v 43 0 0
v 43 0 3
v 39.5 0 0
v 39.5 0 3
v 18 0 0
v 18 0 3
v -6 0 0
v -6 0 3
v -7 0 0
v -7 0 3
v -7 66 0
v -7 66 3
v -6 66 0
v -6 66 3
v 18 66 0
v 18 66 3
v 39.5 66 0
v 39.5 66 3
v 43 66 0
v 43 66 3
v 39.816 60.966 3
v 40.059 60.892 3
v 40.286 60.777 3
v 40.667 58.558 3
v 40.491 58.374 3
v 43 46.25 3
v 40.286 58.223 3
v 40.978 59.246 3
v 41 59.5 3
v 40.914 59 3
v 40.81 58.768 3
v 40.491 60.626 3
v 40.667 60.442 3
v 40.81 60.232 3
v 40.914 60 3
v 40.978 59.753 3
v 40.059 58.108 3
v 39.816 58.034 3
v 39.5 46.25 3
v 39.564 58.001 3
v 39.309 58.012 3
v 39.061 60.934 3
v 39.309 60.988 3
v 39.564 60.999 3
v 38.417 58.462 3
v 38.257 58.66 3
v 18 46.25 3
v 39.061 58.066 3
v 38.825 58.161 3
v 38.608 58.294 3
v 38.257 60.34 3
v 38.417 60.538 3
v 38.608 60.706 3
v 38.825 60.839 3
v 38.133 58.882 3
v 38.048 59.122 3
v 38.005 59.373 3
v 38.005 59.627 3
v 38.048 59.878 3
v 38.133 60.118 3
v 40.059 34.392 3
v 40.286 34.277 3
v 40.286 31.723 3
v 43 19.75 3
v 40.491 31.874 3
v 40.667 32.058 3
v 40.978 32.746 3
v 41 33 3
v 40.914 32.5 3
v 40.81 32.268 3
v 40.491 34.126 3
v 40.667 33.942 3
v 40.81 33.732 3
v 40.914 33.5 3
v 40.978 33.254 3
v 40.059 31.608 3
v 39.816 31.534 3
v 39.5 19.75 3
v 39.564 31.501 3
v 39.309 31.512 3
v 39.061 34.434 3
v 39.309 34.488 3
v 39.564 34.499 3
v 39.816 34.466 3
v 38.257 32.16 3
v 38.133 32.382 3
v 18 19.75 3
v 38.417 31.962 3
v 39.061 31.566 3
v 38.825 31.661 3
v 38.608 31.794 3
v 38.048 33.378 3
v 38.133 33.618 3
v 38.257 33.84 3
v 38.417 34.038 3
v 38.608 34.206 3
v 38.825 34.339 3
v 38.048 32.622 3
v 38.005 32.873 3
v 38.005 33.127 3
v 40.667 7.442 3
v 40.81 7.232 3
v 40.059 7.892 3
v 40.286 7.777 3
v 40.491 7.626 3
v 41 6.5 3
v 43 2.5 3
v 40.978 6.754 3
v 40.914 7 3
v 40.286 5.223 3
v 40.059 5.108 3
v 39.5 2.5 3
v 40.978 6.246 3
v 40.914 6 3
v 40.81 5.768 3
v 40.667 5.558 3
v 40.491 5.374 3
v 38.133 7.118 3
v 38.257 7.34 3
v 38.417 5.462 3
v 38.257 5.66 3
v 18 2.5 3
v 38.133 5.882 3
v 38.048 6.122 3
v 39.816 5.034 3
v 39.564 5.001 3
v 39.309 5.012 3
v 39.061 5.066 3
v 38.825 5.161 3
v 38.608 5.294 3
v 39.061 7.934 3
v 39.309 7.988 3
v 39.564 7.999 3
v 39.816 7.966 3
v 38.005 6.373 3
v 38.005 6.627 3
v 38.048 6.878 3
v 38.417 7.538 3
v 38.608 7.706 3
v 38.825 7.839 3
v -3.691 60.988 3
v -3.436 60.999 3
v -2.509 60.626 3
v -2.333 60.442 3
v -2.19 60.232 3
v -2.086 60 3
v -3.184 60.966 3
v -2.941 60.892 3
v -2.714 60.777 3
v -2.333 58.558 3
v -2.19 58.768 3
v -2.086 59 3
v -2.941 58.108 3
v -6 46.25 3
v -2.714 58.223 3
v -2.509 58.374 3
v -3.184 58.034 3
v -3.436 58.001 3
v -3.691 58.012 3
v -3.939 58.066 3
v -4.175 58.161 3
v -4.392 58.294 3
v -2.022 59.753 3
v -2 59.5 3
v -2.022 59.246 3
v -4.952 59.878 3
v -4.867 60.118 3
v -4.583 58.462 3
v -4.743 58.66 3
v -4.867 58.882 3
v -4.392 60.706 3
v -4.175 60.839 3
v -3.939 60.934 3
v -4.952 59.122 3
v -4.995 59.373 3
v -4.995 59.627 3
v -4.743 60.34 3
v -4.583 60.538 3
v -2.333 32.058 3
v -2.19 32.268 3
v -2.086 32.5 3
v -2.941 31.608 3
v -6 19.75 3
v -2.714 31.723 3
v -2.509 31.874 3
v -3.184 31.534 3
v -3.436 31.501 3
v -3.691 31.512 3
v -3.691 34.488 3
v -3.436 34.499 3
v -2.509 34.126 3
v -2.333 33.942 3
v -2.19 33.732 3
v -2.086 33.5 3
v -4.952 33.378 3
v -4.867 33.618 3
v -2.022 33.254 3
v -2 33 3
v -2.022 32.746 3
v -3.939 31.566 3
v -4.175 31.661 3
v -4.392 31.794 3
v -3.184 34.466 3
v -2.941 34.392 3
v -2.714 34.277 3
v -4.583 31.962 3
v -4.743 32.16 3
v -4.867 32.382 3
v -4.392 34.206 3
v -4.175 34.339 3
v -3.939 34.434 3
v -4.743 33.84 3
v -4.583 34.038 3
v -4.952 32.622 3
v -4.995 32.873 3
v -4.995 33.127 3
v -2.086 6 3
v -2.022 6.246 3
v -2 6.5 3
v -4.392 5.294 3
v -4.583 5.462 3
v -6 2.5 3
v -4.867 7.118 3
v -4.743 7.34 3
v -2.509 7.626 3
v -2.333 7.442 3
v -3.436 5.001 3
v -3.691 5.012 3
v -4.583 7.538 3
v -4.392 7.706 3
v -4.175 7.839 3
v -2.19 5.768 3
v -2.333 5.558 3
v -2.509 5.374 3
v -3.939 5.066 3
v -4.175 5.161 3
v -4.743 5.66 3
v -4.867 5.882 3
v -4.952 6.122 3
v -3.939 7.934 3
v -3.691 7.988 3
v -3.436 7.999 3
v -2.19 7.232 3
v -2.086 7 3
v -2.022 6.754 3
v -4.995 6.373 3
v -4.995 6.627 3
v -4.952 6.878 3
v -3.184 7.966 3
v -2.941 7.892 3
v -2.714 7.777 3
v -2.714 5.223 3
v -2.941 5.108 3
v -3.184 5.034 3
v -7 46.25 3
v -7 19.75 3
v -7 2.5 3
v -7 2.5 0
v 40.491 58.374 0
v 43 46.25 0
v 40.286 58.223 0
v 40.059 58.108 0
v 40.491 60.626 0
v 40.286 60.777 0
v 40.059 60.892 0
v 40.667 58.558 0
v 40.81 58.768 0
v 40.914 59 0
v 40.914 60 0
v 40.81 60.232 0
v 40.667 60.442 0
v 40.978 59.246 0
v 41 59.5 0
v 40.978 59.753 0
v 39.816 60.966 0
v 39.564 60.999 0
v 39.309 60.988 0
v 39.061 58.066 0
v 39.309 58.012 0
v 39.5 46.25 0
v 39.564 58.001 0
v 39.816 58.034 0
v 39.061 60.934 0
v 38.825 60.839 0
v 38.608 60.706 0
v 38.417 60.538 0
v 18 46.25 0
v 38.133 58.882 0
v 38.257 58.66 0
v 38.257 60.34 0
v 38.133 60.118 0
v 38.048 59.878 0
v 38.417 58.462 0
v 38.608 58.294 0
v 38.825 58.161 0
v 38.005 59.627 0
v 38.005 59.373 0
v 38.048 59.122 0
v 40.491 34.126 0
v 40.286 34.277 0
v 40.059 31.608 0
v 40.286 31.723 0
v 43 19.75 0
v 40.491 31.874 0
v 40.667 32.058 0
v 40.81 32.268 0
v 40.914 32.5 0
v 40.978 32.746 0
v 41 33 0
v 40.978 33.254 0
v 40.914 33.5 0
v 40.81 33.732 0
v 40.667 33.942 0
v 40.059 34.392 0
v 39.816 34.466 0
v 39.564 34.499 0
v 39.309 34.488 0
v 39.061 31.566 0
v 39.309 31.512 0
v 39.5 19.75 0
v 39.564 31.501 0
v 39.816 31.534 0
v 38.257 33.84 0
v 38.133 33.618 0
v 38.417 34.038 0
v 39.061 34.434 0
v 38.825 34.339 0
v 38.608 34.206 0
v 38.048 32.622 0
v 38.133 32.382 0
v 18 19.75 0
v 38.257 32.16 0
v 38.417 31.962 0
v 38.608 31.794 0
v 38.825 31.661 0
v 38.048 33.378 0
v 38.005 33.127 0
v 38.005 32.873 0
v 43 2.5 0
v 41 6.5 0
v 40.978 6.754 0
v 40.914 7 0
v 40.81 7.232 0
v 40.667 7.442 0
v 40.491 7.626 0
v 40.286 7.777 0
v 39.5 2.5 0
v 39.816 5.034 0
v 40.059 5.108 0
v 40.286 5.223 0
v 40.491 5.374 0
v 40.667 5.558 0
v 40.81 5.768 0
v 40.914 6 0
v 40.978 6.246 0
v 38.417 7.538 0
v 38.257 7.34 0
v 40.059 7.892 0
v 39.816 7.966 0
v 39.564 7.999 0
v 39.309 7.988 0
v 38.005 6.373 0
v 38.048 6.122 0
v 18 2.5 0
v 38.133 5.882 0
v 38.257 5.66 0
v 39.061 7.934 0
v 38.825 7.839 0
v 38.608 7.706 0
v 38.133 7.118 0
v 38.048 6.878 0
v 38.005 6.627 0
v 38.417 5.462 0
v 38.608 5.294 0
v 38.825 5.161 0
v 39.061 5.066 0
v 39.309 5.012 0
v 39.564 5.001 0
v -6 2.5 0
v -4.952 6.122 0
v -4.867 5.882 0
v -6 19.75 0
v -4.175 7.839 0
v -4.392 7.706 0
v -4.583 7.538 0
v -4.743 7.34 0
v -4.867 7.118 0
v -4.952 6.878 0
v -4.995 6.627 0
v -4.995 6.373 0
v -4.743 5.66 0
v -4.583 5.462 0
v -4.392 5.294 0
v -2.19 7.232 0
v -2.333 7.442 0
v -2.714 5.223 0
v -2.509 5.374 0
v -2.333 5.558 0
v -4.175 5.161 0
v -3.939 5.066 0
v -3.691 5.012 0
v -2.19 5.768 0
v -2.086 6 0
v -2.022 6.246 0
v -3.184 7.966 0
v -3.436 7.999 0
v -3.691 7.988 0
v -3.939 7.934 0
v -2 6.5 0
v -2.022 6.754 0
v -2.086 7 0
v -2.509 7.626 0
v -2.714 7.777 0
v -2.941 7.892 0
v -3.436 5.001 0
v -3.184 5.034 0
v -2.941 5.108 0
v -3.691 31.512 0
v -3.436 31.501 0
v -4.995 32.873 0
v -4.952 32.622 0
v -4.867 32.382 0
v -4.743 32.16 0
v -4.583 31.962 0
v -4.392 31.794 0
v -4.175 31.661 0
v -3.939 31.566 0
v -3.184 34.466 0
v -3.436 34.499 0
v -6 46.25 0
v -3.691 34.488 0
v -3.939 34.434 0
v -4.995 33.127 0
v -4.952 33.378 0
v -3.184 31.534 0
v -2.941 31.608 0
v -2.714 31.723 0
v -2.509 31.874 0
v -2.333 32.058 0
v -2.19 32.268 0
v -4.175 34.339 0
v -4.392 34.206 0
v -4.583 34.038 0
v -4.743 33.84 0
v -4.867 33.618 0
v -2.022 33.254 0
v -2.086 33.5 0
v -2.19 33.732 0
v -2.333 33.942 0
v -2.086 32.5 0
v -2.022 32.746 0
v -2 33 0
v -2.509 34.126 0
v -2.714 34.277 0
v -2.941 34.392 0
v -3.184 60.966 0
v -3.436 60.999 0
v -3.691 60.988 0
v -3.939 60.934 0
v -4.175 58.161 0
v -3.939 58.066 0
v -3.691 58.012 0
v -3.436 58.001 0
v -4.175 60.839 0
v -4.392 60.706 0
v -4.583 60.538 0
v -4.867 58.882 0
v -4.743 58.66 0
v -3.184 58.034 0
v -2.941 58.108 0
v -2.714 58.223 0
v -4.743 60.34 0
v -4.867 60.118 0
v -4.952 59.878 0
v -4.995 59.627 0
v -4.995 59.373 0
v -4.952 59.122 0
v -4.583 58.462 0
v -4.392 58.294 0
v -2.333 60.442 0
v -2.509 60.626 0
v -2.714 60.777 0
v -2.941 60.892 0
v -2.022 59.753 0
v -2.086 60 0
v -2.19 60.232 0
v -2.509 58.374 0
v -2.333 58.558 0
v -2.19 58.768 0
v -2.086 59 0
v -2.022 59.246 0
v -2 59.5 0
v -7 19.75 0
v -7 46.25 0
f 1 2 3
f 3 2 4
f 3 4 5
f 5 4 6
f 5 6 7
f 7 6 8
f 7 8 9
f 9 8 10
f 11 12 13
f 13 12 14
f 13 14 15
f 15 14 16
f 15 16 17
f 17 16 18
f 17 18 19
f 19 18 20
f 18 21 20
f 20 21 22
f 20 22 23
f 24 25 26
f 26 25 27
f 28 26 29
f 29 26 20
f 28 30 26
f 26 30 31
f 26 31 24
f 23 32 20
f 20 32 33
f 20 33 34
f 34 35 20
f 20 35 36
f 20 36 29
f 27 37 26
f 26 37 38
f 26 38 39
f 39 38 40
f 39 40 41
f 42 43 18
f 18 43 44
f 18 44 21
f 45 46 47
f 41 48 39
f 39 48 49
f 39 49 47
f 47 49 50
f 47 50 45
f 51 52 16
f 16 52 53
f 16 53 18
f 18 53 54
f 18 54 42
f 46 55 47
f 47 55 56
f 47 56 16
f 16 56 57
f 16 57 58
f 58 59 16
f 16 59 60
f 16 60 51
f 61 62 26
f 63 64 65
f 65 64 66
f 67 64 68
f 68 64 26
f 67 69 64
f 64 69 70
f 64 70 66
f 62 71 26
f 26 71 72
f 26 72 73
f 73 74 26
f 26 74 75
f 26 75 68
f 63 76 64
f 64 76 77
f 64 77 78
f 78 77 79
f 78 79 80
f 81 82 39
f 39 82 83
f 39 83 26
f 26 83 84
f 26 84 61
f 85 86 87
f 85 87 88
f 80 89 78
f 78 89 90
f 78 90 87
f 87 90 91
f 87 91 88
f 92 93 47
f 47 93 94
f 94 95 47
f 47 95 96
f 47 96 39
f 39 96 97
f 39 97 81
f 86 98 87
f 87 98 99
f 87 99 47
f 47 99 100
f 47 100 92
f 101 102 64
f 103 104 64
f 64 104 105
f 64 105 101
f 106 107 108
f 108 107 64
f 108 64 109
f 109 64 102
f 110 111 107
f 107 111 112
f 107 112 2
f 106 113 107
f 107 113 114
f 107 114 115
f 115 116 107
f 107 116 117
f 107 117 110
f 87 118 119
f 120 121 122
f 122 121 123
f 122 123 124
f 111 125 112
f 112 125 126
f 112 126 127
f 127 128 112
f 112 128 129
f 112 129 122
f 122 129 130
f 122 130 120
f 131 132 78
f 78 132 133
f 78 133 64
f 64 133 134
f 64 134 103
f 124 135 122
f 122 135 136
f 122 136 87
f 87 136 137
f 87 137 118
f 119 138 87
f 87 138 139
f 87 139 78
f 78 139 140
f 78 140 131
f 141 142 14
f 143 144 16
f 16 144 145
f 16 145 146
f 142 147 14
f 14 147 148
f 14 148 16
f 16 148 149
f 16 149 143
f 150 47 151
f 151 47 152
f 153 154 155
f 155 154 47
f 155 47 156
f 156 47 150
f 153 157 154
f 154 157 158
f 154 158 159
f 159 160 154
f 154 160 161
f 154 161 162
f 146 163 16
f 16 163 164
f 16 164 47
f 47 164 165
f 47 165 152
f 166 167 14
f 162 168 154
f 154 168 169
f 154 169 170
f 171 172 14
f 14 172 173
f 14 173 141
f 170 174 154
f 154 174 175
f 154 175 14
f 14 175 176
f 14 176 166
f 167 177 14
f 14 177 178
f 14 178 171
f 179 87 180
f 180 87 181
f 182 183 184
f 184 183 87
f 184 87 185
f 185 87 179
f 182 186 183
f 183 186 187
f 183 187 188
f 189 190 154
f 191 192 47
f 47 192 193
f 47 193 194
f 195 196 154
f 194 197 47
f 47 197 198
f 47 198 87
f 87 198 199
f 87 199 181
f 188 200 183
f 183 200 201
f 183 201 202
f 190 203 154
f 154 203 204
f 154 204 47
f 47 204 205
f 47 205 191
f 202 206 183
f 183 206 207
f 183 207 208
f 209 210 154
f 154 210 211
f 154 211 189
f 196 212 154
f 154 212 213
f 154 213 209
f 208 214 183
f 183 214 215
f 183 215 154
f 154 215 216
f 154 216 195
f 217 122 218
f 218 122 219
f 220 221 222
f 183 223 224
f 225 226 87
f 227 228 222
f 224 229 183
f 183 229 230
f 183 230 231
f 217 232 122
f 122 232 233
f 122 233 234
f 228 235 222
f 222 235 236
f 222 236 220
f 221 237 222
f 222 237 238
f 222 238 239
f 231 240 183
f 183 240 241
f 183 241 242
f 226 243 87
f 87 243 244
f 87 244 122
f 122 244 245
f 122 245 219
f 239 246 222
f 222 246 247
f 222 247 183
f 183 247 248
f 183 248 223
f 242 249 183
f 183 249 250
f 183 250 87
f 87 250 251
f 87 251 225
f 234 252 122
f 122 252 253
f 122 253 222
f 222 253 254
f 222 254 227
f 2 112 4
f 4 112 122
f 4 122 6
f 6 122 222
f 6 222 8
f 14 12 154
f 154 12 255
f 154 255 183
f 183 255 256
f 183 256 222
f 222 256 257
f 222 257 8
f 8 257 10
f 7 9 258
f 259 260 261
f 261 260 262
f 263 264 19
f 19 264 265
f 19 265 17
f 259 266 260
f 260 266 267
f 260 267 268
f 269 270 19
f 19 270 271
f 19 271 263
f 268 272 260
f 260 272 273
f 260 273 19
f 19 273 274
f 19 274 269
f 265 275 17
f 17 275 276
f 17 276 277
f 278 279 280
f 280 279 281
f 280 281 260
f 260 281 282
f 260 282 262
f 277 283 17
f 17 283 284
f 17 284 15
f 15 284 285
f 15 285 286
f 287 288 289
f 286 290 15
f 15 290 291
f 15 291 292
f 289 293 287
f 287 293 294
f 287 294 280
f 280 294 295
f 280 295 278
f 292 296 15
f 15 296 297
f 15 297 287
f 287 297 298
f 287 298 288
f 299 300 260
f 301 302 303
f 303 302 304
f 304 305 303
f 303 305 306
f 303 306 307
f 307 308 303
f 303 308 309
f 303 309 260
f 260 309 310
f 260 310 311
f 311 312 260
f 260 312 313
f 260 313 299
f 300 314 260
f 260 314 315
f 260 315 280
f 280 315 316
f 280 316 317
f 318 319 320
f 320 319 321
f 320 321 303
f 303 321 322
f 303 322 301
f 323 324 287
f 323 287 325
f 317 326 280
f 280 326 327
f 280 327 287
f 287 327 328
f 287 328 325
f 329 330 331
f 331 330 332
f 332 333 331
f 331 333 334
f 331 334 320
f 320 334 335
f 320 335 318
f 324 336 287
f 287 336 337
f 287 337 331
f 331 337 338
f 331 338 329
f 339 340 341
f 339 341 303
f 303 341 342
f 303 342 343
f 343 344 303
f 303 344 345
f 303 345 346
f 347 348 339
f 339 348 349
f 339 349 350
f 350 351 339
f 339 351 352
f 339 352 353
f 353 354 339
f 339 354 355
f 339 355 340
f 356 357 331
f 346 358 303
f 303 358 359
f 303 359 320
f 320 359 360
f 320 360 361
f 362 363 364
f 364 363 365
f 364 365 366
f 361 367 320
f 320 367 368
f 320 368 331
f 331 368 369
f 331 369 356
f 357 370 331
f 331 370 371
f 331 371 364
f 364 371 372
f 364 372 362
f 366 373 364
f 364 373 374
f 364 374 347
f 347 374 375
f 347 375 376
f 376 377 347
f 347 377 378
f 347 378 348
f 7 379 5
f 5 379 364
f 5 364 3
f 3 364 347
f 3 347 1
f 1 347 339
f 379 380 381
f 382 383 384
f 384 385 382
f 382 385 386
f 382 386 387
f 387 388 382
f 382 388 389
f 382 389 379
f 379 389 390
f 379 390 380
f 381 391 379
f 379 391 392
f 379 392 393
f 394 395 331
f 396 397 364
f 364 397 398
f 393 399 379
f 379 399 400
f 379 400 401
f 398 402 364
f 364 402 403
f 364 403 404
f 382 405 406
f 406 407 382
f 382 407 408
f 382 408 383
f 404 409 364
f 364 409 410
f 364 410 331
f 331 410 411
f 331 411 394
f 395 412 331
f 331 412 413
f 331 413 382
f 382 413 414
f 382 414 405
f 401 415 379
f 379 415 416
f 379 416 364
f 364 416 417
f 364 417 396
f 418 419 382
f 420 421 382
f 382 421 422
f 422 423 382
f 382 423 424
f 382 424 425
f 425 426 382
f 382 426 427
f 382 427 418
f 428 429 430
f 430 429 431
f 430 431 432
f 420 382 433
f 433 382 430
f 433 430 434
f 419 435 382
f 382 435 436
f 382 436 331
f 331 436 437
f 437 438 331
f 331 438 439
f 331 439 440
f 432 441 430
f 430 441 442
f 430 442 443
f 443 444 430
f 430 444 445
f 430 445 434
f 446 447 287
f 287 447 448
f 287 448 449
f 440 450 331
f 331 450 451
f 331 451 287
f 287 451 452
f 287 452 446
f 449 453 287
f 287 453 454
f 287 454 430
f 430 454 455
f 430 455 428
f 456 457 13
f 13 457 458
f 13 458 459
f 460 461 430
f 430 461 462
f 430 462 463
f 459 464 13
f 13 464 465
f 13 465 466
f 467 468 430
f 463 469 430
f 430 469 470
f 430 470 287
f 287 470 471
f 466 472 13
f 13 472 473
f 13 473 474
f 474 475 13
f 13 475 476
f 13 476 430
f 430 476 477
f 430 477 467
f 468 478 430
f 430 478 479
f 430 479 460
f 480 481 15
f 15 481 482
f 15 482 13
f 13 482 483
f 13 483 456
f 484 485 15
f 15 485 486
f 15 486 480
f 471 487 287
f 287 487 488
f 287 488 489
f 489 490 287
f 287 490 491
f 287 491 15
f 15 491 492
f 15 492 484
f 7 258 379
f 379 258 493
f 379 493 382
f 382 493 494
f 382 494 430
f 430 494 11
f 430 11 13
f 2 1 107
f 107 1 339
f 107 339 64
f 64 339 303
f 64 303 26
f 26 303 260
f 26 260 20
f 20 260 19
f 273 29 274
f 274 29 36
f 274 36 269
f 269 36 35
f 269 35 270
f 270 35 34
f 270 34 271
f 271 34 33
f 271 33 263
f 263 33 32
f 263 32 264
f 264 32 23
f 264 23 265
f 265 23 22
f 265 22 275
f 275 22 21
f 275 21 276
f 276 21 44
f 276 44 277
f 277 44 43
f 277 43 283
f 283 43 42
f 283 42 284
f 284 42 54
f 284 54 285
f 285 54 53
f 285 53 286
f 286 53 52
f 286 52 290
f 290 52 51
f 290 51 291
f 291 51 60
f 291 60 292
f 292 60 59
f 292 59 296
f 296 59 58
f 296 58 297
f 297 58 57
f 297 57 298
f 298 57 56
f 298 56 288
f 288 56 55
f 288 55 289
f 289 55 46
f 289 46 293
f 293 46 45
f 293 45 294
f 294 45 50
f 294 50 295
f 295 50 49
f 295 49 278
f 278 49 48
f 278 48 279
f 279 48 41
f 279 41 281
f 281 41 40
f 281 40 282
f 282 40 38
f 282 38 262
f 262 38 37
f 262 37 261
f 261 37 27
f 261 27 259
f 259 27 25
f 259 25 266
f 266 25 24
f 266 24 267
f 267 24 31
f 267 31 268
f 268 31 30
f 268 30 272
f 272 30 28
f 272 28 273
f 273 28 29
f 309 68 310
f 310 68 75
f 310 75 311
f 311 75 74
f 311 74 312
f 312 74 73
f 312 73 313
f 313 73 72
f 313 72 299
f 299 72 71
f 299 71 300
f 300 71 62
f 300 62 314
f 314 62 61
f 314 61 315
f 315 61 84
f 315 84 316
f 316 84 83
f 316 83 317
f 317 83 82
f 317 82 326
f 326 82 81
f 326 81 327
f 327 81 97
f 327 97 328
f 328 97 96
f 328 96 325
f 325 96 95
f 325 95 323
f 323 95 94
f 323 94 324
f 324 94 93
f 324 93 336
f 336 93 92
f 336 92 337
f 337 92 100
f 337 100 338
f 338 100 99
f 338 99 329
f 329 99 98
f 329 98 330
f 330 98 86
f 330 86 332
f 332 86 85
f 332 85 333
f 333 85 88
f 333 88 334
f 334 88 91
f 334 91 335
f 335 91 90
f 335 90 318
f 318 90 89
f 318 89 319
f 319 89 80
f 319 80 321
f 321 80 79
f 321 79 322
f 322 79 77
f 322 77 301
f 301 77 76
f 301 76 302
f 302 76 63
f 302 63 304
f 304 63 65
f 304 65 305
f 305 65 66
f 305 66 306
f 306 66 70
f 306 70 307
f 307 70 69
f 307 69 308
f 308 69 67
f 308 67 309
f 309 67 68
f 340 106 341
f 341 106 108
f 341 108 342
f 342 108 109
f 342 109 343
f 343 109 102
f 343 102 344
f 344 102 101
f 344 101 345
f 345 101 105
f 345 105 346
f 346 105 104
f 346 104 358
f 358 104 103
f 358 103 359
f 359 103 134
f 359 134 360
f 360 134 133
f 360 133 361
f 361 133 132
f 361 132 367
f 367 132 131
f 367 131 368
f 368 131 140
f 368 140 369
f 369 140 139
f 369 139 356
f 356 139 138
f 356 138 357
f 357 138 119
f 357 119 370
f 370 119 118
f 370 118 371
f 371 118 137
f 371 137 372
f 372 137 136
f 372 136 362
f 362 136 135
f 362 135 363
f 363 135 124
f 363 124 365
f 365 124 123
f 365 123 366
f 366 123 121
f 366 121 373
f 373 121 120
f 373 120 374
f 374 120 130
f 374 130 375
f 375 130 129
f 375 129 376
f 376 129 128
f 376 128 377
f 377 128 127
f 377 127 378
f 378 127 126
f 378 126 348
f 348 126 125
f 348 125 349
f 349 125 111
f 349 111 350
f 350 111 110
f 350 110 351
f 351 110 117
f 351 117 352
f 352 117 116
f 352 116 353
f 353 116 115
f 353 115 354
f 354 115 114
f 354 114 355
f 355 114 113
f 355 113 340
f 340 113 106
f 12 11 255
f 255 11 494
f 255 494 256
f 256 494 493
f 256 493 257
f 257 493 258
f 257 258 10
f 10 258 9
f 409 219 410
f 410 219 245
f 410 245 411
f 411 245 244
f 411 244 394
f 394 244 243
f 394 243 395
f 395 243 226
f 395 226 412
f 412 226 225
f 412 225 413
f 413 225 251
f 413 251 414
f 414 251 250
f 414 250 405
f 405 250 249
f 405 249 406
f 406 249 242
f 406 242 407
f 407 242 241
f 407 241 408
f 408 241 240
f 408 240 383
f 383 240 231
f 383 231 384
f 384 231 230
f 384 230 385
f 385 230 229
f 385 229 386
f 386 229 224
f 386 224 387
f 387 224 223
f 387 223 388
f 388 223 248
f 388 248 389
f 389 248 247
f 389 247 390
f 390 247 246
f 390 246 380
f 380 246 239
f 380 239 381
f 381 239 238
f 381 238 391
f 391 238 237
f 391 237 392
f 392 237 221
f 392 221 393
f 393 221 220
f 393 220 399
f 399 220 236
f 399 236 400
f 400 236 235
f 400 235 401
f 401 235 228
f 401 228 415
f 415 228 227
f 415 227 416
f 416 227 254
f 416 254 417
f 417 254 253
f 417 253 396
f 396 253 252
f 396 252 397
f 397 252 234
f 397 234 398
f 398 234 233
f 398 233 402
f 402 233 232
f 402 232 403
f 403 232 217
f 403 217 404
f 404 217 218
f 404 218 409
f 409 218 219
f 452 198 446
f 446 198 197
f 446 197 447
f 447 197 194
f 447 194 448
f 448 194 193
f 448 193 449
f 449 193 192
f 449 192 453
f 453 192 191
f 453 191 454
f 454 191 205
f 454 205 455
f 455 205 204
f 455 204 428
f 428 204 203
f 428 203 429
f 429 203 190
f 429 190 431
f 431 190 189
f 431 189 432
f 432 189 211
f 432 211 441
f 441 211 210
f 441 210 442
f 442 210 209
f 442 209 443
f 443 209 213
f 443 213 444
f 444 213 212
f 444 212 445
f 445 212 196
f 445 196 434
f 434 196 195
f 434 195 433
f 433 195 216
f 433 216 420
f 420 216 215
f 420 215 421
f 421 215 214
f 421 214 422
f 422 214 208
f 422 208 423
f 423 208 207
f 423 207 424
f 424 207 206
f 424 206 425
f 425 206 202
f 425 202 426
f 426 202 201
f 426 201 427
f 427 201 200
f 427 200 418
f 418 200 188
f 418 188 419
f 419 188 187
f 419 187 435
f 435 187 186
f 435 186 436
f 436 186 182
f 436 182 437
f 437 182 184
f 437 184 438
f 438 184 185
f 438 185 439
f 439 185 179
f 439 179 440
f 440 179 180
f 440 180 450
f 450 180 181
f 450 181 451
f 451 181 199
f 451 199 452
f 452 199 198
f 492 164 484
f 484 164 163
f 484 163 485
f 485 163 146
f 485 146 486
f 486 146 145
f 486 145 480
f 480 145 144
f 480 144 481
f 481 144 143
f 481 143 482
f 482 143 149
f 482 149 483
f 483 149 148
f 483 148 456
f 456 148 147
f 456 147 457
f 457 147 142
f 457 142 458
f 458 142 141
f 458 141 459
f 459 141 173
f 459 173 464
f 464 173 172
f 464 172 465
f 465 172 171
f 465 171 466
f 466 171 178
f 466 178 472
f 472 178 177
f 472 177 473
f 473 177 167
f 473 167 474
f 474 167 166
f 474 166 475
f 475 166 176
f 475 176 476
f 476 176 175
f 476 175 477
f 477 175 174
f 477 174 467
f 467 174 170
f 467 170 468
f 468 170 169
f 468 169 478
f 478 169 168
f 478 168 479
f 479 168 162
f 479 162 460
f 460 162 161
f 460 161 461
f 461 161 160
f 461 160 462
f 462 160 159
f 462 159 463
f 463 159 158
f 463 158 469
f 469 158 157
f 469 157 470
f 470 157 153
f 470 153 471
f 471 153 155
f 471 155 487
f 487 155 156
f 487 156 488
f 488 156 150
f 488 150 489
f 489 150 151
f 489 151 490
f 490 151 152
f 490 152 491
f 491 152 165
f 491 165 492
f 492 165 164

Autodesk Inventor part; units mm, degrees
ref_plane "YZ Plane" through (0, 0, 0) normal (1, 0, 0) x (0, 1, 0)
ref_plane "XZ Plane" through (0, 0, 0) normal (0, 1, 0) x (-1, 0, 0)
ref_plane "XY Plane" through (0, 0, 0) normal (0, 0, 1) x (1, 0, 0)
sketch "Sketch1" plane through (0, 0, 0) normal (0, 0, 1) x (1, 0, 0)
  line L0 (0, 0) -> (0, 66)
  line L1 (0, 66) -> (36, 66)
  line L2 (36, 66) -> (36, 0)
  line L3 (36, 0) -> (0, 0)
  dimension "d0" = 66
  dimension "d1" = 36
extrude "Extrusion1" add sketch "Sketch1" along normal blind 3
sketch "Sketch2" plane through (0, 0, 3) normal (0, 0, 1) x (1, 0, 0)
  line L0 (36, 66) -> (0, 66) projected
  line L1 (36, 66) -> (43, 66)
  line L2 (43, 66) -> (43, 0)
  line L3 (36, 0) -> (36, 66) projected
  line L4 (43, 0) -> (36, 0)
  line L5 (39.5, 66) -> (39.5, 59.5)
  line L6 (39.5, 0) -> (39.5, 6.5)
  line L7 (43, 33) -> (39.5, 33)
  circle A0 centre (39.5, 33) radius 1.5
  circle A1 centre (39.5, 59.5) radius 1.5
  circle A2 centre (39.5, 6.5) radius 1.5
  line L8 (18, 66) -> (18, 77.4734)
  line L9 (0, 66) -> (-7, 66)
  line L10 (-7, 66) -> (-7, 0)
  line L11 (-7, 0) -> (0, 0)
  line L12 (-3.5, 66) -> (-3.5, 59.5)
  line L13 (-3.5, 0) -> (-3.5, 6.5)
  line L14 (-7, 33) -> (-3.5, 33)
  circle A3 centre (-3.5, 33) radius 1.5
  circle A4 centre (-3.5, 59.5) radius 1.5
  circle A5 centre (-3.5, 6.5) radius 1.5
  line L15 (36, 0) -> (36, 66) projected
  line L16 (36, 66) -> (0, 66) projected
  line L17 (0, 66) -> (0, 0) projected
  line L18 (0, 0) -> (36, 0) projected
  dimension "d4" = 7
  dimension "d5" = 6.5
  dimension "d6" = 6.5
  dimension "d7" = 3
  dimension "d8" = 3
  dimension "d9" = 3
extrude "Extrusion2" add sketch "Sketch2" against normal blind 3 contours L1 L2 L4 L3 | L17 L11 L10 L9
properties part number "middle steel plate"
